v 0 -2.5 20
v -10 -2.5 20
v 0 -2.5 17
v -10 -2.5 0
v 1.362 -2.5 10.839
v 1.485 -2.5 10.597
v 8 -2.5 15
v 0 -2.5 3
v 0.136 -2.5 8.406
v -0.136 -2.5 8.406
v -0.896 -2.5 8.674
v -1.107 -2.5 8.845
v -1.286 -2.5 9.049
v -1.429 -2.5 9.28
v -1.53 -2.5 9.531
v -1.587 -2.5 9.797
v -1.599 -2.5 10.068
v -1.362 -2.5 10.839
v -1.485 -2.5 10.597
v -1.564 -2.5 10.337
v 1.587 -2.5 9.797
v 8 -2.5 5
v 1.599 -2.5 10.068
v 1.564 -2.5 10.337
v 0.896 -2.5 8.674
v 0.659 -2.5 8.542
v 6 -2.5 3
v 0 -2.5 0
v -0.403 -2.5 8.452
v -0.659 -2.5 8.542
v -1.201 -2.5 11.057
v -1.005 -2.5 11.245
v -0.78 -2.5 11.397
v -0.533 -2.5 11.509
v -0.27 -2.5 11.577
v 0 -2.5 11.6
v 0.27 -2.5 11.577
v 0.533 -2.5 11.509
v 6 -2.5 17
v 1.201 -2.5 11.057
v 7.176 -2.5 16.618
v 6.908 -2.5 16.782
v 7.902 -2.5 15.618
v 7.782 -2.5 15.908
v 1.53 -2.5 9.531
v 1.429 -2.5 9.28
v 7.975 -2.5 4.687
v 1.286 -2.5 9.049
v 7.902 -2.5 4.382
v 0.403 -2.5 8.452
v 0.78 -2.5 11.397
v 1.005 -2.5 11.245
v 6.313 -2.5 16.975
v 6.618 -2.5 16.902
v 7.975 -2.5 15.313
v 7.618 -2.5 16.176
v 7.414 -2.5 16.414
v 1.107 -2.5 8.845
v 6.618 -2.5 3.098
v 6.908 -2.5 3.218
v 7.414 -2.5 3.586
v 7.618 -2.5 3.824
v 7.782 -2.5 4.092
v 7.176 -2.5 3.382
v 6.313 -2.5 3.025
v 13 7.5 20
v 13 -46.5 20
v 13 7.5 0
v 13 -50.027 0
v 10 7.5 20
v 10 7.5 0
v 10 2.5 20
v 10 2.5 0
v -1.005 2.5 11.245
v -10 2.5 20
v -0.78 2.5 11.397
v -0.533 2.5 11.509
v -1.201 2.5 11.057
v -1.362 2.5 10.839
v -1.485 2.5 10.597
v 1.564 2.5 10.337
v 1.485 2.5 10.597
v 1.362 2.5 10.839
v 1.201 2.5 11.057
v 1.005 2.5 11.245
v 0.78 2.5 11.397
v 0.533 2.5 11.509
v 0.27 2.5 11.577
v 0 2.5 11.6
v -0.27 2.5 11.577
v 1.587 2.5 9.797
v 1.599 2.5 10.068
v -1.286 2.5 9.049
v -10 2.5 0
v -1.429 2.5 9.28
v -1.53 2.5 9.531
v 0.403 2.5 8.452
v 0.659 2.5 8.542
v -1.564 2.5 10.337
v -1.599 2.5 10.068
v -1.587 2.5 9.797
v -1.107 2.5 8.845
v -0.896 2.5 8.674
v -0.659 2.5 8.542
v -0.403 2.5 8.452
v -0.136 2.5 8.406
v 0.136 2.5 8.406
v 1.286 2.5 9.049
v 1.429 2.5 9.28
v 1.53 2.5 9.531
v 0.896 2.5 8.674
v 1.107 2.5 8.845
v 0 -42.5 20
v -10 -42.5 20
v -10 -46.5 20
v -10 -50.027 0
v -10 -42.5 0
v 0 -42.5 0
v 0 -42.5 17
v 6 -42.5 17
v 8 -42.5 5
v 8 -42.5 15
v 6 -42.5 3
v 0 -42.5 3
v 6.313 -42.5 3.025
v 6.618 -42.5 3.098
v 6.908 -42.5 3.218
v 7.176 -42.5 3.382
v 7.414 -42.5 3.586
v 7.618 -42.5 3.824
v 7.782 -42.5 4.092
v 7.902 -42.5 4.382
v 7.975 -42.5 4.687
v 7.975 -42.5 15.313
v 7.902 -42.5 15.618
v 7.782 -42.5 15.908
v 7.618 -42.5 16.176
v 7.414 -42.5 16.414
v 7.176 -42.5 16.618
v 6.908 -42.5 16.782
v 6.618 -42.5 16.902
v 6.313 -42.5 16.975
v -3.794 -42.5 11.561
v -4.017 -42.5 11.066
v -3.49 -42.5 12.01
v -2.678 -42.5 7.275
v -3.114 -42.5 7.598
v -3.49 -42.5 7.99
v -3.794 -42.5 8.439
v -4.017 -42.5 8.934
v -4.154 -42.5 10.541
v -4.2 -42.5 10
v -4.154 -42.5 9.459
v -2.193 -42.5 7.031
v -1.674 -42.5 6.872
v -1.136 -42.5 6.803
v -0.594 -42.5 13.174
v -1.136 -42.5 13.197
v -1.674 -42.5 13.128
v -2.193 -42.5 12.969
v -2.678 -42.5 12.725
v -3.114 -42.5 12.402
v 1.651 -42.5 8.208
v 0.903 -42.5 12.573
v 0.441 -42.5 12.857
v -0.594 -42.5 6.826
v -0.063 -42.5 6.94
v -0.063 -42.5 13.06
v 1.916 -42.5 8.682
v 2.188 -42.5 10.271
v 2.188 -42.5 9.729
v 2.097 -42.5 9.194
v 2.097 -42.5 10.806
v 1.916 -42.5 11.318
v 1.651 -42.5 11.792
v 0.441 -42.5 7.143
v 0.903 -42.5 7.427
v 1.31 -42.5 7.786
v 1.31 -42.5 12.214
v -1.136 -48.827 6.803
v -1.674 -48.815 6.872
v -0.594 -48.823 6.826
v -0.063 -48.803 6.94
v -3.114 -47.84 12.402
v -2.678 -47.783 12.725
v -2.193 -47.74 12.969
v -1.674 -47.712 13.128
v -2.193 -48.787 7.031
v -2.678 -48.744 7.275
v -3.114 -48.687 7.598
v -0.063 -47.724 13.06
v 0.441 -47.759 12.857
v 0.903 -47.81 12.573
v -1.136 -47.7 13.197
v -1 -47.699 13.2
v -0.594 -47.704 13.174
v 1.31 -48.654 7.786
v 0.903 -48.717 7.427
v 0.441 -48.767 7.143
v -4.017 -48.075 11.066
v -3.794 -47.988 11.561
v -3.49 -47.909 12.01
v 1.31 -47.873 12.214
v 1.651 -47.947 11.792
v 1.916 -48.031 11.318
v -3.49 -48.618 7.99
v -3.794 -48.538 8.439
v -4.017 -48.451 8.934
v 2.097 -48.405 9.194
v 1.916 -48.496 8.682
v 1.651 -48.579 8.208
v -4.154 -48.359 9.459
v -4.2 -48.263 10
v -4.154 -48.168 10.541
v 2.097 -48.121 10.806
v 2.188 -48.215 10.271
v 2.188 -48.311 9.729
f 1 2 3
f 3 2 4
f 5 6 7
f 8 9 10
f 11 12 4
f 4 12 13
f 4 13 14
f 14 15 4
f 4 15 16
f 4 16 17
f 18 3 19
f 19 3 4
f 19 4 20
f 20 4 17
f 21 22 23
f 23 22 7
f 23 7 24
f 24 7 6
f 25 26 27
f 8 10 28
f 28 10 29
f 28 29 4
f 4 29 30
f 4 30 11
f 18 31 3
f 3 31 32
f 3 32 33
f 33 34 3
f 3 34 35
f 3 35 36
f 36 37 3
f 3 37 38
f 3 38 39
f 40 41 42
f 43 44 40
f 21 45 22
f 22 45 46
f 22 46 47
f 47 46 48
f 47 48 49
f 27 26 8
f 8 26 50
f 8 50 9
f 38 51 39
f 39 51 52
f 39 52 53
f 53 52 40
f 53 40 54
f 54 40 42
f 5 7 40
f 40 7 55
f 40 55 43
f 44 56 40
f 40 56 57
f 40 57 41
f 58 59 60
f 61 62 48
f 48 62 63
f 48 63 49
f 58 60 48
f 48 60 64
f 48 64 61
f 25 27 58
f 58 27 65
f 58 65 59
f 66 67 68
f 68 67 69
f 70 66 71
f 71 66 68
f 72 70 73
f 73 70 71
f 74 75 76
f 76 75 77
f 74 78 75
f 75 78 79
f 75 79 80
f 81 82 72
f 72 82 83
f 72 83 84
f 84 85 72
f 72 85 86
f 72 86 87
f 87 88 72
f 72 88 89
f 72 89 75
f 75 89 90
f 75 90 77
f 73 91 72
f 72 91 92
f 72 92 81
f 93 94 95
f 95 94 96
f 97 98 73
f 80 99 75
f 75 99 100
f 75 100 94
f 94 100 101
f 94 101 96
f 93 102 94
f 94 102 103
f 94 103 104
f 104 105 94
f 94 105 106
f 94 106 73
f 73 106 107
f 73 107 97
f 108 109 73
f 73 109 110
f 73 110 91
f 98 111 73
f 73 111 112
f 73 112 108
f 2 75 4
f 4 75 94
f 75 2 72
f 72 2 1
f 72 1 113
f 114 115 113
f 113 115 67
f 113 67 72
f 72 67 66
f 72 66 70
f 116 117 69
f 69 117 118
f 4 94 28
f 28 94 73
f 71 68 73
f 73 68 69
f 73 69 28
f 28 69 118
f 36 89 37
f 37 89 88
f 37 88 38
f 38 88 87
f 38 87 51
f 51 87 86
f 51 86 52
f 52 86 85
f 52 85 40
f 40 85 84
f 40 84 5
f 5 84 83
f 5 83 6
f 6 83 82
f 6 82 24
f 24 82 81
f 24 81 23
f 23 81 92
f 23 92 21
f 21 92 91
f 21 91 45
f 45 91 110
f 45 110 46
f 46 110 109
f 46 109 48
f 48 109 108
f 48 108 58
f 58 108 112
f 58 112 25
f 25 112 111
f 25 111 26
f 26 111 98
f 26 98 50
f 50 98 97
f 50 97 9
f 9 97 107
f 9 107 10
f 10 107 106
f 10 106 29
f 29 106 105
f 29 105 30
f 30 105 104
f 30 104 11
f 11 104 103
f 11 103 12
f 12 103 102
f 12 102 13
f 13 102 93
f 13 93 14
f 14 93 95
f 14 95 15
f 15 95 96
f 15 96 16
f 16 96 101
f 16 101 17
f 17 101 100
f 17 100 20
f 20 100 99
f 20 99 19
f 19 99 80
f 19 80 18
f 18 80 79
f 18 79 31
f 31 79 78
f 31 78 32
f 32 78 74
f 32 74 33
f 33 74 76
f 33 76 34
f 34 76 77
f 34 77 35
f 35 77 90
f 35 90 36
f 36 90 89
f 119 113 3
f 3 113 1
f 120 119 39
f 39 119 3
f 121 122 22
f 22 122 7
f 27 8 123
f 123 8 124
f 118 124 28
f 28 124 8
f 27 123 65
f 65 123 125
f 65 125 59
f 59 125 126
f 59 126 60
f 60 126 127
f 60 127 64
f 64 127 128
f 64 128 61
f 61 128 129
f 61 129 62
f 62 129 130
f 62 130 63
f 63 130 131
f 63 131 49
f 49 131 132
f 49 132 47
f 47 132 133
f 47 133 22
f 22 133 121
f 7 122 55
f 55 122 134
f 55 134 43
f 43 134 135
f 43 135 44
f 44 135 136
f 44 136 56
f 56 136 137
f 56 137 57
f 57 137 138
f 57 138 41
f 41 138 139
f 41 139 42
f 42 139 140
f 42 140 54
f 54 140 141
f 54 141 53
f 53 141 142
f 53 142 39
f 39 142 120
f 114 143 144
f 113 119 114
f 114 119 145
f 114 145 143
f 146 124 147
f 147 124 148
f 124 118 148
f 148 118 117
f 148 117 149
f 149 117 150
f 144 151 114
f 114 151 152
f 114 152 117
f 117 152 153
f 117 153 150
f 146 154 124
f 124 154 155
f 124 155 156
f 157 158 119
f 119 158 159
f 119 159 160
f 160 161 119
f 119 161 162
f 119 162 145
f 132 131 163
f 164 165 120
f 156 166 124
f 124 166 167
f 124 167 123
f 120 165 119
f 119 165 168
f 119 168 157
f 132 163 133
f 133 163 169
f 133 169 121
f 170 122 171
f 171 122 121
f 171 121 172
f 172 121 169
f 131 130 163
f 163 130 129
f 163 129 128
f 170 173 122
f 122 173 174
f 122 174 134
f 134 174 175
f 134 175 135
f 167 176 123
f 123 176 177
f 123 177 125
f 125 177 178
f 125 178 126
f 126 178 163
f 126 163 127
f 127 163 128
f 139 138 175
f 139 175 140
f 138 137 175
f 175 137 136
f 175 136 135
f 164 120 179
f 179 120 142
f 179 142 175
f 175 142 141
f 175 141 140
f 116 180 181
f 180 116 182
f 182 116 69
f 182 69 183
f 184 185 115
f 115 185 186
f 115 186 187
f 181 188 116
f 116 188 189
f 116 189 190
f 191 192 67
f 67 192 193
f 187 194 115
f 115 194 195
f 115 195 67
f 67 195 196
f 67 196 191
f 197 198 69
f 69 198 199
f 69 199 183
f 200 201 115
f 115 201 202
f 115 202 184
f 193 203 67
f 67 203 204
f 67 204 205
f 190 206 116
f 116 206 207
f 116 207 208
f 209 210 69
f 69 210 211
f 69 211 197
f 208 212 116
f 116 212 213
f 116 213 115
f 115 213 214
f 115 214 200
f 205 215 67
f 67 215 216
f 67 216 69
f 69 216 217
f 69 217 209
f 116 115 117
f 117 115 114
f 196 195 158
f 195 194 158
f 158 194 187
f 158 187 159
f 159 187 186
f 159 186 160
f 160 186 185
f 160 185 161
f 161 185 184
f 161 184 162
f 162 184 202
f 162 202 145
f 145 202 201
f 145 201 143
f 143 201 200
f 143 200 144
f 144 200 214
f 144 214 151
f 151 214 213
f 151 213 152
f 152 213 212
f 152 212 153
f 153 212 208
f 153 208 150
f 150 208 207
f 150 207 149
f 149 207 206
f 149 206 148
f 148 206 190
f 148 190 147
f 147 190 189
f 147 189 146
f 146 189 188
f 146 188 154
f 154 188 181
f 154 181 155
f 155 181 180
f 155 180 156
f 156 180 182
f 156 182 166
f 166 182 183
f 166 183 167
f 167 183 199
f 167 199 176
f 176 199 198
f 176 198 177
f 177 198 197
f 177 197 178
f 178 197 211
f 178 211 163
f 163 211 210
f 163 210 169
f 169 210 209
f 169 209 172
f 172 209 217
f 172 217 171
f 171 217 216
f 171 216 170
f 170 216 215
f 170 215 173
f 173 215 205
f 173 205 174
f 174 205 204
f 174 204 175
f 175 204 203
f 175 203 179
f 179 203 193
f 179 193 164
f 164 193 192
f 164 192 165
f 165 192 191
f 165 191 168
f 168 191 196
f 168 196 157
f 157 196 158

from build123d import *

# Parameters (mm, degrees)
BOSS_EXTRUDE1_DEPTH = 20
SKETCH3_R           = 1.6
CUT_EXTRUDE1_DEPTH  = 20
BOSS_EXTRUDE2_DEPTH = 40
FILLET1_R           = 2
BOSS_EXTRUDE3_DEPTH = 23
SKETCH6_R           = 3.2
CUT_EXTRUDE2_DEPTH  = 13


with BuildPart() as part:
    # Sketch2 → Boss-Extrude1 (new body)
    with BuildSketch(Plane.XY):
        Polygon((-10, 2.5), (10, 2.5), (10, 7.5), (13, 7.5), (13, -2.5), (10, -2.5), (-10, -2.5), align=None)
    extrude(amount=BOSS_EXTRUDE1_DEPTH)

    # Sketch3 → Cut-Extrude1 (cut)
    with BuildSketch(Plane(origin=(0, 2.5, 0), x_dir=(1, 0, 0), z_dir=(0, 1, 0))):
        with Locations(Location((0, -10, 0), (0, 0, 270))):
            Circle(SKETCH3_R)
    extrude(amount=-CUT_EXTRUDE1_DEPTH, mode=Mode.SUBTRACT)

    # Sketch4 → Boss-Extrude2 (add)
    with BuildSketch(Plane.XZ.offset(2.5)):
        Polygon((13, 0), (8, 0), (0, 0), (0, 3), (8, 3), (8, 17), (0, 17), (0, 20), (8, 20), (13, 20), align=None)
    extrude(amount=BOSS_EXTRUDE2_DEPTH)

    # Fillet1
    fillet1_edges = [part.edges().sort_by_distance(p)[0] for p in [
        (8, -22.5, 17),
        (8, -22.5, 3),
    ]]
    fillet(fillet1_edges, radius=FILLET1_R)

    # Sketch5 → Boss-Extrude3 (add)
    with BuildSketch(Plane(origin=(13, 0, 0), x_dir=(0, 0, -1), z_dir=(1, 0, 0))):
        Polygon((-20, -42.5), (-20, -46.5), (0, -50.026539614), (0, -42.5), align=None)
    extrude(amount=-BOSS_EXTRUDE3_DEPTH)

    # Sketch6 → Cut-Extrude2 (cut)
    with BuildSketch(Plane(origin=(0, -42.5, 0), x_dir=(1, 0, 0), z_dir=(0, 1, 0))):
        with Locations(Location((-1, -10, 0), (0, 0, 180))):
            Circle(SKETCH6_R)
    extrude(amount=-CUT_EXTRUDE2_DEPTH, mode=Mode.SUBTRACT)


solid = part.part
